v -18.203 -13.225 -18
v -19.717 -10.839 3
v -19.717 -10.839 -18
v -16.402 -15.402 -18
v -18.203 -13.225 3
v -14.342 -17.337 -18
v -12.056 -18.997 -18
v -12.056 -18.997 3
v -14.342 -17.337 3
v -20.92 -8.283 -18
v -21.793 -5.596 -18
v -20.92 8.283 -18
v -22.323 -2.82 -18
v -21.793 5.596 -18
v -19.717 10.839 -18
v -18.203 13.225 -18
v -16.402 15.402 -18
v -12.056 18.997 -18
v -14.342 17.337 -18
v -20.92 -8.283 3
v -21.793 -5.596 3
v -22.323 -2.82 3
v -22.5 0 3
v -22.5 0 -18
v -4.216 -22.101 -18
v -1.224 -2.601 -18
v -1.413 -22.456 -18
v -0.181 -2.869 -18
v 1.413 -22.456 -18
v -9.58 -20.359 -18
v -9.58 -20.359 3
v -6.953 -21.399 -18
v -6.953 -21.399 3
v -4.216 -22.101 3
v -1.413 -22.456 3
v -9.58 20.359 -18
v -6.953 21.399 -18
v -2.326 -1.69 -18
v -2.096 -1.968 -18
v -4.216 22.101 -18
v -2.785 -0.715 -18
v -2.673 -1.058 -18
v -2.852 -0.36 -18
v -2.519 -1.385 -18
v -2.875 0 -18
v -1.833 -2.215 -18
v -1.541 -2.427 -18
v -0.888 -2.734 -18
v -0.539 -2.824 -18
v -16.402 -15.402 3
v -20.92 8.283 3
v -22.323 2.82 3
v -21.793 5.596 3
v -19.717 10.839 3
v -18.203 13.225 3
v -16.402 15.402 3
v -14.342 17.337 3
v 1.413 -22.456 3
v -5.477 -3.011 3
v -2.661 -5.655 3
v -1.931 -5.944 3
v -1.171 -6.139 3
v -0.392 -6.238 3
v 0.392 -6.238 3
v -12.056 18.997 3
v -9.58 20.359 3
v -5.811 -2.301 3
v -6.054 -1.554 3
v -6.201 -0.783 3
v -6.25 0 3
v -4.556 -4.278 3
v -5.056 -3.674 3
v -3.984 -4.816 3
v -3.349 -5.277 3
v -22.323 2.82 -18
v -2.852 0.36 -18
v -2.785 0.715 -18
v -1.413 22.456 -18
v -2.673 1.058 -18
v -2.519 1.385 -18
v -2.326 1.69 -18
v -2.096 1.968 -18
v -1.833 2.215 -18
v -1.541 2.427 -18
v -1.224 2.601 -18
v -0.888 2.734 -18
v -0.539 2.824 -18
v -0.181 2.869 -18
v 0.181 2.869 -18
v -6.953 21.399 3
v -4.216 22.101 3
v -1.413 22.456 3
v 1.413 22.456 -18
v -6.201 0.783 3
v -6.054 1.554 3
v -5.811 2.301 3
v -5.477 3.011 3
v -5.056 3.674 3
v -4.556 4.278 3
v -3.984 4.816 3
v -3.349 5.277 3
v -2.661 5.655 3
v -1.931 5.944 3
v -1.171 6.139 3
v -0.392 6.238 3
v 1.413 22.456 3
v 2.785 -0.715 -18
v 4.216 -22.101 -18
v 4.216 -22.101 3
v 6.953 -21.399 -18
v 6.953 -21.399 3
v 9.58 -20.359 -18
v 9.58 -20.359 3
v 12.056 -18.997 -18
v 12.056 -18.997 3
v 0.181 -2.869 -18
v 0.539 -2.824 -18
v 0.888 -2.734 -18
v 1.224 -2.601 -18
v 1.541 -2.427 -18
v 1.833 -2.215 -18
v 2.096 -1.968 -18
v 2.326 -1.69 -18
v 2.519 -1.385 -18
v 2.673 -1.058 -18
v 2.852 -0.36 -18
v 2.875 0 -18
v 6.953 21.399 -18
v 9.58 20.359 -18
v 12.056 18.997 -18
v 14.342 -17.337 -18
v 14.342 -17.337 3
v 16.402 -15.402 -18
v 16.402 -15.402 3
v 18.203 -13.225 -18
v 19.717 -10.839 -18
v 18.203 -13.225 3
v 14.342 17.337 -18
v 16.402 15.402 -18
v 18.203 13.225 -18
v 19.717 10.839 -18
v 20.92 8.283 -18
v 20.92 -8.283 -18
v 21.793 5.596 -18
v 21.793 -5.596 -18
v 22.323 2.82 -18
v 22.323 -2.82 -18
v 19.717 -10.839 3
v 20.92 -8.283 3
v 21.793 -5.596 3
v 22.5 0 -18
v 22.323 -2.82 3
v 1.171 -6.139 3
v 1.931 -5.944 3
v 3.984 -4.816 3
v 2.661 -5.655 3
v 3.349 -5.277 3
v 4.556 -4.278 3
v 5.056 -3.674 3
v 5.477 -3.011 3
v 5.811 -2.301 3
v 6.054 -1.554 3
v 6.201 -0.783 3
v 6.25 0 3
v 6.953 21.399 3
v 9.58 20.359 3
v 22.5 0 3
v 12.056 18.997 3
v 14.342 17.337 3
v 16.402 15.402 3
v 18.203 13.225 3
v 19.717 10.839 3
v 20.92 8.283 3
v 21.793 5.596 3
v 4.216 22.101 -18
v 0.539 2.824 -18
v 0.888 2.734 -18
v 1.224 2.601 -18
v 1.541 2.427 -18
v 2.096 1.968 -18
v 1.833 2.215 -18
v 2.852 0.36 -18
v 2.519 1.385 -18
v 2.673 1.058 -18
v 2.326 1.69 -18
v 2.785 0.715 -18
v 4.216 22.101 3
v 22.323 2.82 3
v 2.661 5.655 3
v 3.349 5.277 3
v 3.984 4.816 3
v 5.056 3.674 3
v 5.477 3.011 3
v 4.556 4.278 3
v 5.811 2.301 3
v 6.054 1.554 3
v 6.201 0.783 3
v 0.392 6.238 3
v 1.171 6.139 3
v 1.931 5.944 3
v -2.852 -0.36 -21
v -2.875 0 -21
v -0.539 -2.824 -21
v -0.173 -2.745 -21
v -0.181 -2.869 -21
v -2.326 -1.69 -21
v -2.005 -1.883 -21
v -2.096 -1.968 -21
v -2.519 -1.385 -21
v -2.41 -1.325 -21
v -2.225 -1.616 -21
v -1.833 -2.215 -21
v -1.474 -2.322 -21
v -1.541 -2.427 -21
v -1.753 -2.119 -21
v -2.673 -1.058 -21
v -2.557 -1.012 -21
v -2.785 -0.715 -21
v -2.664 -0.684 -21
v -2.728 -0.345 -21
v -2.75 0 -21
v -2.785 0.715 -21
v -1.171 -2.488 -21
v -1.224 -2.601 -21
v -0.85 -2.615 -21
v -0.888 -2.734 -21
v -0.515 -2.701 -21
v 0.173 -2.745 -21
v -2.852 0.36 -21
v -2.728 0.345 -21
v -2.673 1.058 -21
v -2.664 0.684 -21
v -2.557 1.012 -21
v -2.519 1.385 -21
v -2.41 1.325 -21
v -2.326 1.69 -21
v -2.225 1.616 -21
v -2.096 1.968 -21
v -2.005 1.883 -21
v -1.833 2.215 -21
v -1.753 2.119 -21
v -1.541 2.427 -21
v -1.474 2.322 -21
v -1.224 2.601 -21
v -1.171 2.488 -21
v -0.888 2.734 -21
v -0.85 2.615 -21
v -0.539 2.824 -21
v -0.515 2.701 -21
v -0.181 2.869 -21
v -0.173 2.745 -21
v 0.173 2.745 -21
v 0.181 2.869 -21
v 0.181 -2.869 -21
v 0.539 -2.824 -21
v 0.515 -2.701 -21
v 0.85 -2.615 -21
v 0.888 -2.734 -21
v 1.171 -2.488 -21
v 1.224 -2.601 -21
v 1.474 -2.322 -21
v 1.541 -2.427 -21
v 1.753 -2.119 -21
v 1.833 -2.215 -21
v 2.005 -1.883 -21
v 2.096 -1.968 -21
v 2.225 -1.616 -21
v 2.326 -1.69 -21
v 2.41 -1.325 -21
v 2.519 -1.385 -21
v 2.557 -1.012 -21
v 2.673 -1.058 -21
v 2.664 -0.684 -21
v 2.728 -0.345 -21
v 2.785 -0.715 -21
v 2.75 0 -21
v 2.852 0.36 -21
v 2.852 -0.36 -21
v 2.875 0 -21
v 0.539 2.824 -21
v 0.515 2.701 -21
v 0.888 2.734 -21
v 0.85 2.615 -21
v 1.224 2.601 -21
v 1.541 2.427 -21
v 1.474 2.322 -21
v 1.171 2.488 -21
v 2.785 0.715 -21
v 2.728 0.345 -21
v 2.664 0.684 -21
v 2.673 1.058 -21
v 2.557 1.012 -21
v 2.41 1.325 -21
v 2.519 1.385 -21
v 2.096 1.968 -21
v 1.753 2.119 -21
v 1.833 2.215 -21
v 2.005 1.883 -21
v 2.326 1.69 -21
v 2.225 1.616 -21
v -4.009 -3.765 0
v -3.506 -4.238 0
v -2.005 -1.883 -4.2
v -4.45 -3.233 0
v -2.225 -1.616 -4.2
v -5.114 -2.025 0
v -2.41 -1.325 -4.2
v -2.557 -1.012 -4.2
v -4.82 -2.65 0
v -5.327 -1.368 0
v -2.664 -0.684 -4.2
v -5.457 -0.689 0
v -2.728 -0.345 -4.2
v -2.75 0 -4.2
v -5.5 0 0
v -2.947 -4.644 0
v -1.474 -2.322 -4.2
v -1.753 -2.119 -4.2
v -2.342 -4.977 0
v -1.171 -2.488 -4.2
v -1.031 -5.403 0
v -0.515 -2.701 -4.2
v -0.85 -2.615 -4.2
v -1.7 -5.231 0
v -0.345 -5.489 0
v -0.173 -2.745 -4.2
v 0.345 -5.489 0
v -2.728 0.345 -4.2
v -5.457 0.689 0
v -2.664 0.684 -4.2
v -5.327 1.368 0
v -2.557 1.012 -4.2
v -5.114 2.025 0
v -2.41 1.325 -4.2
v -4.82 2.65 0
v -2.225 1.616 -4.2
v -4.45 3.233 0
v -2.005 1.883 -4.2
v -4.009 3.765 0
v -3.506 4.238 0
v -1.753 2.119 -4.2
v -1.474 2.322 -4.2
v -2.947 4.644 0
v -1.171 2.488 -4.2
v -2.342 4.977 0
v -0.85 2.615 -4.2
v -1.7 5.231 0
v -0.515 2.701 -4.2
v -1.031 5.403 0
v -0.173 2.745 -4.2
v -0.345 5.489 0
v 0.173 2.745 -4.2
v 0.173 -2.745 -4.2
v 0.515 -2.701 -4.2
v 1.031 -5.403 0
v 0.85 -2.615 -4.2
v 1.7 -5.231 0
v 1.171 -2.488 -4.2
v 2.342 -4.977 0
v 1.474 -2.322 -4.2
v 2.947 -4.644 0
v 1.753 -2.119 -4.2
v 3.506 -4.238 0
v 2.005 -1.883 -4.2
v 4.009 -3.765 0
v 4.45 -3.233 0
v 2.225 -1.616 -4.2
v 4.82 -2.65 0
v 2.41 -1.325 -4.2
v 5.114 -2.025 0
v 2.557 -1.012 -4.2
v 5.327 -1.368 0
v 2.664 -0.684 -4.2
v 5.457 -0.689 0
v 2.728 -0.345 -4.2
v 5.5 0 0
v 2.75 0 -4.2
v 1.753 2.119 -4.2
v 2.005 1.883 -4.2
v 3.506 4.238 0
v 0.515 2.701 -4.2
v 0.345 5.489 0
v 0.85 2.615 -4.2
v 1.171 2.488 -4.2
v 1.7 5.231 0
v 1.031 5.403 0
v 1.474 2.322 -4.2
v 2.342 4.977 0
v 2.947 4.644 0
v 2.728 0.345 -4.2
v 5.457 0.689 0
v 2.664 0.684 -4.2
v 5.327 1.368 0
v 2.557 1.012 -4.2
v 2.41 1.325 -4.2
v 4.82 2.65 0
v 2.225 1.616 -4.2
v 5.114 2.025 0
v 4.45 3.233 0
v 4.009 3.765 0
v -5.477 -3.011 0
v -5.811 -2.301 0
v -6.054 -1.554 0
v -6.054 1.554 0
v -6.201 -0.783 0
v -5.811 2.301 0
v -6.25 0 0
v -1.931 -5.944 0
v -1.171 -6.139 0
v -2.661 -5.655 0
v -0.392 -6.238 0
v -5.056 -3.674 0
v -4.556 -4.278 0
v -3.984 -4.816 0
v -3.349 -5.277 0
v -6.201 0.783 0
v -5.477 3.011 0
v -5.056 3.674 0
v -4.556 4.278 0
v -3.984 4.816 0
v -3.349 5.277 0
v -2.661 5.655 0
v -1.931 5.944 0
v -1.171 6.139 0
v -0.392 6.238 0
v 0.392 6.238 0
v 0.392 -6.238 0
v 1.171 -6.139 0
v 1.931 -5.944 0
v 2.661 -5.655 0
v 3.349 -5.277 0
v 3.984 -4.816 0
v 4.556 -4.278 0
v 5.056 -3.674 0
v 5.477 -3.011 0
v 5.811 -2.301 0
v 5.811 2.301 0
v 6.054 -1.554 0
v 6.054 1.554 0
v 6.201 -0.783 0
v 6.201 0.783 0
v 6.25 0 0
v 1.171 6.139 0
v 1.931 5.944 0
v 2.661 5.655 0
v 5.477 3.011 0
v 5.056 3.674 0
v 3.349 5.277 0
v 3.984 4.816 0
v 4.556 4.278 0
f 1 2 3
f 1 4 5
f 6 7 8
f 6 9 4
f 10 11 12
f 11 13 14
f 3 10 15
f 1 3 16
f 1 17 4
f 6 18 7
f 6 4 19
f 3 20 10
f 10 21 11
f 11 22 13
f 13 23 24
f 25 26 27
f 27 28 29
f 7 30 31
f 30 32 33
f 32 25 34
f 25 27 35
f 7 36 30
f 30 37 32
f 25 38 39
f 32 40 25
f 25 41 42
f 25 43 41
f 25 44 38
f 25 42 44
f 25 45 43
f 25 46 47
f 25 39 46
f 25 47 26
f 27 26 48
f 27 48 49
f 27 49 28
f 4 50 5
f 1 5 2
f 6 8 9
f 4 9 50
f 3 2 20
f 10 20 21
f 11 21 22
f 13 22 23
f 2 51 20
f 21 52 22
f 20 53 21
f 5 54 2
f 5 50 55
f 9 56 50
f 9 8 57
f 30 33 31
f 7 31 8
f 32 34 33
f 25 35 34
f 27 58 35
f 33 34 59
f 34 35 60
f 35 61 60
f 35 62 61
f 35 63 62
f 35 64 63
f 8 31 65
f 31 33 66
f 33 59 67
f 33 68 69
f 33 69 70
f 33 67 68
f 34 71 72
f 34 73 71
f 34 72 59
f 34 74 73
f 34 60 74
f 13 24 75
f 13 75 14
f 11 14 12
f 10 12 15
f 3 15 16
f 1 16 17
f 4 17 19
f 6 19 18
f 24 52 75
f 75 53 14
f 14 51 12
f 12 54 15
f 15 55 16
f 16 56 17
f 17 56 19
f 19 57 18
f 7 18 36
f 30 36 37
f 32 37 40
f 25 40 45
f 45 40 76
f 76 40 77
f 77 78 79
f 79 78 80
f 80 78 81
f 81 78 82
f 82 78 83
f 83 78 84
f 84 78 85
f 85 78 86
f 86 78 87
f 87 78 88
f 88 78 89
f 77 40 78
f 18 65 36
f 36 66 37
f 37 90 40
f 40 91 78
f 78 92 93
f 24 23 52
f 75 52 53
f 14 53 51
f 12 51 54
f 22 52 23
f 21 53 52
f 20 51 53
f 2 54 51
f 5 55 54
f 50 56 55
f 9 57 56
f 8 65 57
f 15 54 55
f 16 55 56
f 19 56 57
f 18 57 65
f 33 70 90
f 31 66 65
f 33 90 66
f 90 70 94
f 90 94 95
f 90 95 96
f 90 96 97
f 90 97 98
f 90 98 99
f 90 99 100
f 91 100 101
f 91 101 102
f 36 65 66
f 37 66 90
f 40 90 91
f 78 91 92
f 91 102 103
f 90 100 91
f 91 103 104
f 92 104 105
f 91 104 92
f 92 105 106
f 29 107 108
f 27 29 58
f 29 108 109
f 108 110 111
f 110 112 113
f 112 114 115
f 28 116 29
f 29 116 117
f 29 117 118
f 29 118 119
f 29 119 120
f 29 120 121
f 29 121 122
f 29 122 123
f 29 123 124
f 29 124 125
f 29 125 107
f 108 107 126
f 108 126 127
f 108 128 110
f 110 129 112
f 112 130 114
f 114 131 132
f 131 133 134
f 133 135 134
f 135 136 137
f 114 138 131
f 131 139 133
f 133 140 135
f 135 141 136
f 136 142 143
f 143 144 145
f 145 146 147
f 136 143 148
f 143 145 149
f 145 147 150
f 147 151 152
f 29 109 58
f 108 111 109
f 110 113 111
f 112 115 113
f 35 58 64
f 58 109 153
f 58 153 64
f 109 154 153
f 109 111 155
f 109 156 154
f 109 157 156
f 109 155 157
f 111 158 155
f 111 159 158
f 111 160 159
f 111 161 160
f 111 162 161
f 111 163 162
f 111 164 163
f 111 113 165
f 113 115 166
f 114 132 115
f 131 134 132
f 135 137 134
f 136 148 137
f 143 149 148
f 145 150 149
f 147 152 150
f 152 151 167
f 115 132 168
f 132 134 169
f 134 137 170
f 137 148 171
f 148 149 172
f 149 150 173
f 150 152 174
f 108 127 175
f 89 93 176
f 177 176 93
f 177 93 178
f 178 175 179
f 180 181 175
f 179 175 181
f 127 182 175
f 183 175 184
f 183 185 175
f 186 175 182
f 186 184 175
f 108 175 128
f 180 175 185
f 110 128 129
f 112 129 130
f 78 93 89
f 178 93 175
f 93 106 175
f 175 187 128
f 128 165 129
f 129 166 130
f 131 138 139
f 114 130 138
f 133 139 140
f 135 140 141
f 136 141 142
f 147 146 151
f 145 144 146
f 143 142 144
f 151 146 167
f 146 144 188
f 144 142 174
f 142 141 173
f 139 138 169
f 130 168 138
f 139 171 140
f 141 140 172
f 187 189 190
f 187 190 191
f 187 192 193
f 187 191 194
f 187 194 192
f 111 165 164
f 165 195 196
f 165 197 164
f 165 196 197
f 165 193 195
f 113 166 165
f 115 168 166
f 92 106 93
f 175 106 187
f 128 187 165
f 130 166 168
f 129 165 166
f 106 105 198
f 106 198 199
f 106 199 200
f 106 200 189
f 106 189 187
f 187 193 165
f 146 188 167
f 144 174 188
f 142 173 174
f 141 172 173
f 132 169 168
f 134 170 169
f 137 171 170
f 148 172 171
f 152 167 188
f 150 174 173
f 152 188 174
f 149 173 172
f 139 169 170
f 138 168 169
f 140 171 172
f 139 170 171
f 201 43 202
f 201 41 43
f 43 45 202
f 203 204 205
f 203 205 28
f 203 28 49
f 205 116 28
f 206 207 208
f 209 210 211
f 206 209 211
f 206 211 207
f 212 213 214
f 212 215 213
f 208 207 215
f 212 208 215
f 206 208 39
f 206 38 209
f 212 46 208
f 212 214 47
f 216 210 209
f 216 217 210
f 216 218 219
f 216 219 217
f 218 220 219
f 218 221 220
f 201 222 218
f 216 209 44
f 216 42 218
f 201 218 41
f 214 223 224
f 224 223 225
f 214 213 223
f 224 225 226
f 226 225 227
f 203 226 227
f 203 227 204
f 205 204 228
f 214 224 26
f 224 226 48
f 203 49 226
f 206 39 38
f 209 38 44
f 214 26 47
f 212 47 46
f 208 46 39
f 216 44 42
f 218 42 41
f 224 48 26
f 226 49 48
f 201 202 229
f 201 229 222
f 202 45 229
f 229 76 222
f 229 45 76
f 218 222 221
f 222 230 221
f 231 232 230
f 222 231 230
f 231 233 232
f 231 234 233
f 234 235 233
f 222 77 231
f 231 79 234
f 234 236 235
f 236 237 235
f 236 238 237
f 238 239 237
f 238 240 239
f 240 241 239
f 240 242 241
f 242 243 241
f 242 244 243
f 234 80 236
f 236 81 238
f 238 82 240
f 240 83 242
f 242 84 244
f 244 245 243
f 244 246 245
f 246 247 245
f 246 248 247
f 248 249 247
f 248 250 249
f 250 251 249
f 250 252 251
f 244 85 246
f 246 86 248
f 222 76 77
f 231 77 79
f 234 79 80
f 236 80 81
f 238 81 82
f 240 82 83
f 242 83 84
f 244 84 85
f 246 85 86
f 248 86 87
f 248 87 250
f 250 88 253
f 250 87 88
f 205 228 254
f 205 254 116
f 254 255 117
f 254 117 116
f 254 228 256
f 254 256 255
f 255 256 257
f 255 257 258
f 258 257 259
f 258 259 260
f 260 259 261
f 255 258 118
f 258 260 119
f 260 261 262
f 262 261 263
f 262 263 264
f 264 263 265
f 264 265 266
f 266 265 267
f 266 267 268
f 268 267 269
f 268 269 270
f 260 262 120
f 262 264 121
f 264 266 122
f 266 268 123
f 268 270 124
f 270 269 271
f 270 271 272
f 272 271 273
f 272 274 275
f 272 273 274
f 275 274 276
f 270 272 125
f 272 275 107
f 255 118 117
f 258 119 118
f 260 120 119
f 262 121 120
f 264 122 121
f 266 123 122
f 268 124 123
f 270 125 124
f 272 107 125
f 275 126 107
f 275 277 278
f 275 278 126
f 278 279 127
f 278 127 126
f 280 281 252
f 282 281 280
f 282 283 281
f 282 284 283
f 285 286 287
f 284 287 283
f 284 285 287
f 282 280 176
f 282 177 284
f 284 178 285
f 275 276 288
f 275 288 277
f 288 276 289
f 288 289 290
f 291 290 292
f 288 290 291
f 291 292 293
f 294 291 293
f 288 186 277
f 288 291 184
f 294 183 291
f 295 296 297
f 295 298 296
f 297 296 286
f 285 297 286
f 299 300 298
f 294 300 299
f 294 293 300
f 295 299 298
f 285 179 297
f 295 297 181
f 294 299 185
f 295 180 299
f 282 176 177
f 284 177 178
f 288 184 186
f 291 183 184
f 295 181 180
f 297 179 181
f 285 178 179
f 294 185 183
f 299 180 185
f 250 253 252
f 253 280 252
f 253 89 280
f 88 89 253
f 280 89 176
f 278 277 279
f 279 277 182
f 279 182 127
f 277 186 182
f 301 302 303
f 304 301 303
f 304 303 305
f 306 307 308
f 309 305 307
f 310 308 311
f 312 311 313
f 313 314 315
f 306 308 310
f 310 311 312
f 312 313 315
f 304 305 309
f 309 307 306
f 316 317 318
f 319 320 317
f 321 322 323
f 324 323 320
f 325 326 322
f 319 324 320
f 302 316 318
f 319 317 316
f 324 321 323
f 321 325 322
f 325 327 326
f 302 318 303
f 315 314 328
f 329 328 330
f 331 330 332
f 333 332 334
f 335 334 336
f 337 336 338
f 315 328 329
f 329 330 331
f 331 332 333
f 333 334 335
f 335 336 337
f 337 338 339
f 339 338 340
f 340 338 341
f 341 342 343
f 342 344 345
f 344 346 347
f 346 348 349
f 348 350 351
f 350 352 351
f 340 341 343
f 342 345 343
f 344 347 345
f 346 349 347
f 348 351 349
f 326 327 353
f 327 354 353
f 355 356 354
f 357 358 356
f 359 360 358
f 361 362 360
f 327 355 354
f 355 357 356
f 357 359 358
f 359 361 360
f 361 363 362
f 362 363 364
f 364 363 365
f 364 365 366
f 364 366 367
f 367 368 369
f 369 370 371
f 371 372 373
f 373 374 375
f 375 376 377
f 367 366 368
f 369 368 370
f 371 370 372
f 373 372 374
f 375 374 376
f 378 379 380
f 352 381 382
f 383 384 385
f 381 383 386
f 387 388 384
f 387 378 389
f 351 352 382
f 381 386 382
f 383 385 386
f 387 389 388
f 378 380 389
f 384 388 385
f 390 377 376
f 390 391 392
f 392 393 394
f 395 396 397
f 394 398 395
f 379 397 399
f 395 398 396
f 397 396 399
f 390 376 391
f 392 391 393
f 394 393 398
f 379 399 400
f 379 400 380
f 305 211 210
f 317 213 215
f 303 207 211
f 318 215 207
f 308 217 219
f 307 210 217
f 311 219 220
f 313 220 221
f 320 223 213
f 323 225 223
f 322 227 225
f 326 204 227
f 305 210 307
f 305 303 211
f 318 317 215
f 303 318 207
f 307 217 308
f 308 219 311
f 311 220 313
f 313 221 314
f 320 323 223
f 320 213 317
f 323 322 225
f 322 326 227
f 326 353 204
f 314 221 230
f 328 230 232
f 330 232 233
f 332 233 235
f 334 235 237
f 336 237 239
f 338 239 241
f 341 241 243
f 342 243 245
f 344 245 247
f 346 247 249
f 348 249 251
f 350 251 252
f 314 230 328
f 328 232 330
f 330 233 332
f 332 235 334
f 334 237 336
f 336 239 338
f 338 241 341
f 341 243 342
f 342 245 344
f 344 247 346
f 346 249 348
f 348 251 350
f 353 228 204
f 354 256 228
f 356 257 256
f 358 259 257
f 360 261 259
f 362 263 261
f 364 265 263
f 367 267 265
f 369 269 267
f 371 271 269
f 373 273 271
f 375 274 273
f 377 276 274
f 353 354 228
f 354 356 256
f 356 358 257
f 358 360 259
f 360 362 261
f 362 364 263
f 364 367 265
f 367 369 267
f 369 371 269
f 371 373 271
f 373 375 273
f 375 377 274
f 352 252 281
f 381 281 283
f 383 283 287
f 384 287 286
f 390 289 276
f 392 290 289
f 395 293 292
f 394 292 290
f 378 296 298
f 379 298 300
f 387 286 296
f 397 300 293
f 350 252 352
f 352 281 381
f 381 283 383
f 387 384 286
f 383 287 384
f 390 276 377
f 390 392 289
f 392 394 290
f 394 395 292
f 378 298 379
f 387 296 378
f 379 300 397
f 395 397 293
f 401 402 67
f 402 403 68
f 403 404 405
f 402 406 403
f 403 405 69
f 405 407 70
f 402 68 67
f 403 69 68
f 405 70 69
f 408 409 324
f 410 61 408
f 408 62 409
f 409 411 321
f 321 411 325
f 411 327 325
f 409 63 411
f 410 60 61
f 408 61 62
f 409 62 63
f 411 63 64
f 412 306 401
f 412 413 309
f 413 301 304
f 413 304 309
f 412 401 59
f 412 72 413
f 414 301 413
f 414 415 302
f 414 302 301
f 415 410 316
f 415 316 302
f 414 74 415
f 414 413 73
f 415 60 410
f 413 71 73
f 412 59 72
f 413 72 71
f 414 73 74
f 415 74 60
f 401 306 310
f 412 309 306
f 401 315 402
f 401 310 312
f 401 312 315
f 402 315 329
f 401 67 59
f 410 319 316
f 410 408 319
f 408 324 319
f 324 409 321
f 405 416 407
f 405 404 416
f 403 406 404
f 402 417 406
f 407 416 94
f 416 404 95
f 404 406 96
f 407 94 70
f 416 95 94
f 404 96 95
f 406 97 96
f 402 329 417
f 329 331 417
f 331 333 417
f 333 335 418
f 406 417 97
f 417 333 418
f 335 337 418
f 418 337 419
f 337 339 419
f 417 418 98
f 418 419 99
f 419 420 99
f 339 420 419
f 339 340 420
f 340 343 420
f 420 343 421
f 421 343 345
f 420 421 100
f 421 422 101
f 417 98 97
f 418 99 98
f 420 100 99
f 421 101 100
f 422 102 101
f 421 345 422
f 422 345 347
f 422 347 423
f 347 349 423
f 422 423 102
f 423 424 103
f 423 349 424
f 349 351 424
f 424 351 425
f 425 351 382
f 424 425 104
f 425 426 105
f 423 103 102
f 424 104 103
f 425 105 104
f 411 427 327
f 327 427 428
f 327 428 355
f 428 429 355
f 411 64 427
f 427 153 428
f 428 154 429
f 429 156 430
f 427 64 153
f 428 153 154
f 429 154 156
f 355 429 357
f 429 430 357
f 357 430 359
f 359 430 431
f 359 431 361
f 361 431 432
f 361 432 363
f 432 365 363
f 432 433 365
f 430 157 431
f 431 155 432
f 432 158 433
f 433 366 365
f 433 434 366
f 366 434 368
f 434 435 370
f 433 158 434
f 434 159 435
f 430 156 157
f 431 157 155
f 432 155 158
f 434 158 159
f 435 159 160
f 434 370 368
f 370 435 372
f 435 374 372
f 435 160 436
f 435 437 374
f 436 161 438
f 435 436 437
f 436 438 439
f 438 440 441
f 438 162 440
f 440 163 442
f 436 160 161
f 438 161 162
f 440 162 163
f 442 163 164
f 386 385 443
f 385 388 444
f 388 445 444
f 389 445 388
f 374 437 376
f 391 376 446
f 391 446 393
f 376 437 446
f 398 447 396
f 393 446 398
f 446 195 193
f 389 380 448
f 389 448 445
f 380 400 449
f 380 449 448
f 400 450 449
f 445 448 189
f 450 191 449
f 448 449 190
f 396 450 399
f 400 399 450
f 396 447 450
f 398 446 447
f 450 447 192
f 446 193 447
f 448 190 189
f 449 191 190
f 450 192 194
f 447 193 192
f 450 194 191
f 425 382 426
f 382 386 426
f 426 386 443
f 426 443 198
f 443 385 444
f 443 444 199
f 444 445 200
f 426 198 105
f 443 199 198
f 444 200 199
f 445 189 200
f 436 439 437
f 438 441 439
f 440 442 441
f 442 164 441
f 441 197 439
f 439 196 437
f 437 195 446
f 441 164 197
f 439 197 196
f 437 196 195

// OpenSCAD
$fn = 50;


difference() {
	union() {
		translate(v = [0, 0, -18.0000000000]) {
			cylinder(h = 21, r = 22.5000000000);
		}
		#translate(v = [0, 0, -21.0000000000]) {
			cylinder(h = 21, r = 2.8750000000);
		}
	}
	union() {
		translate(v = [0, 0, 0]) {
			rotate(a = [0, 0, 0]) {
				difference() {
					union() {
						translate(v = [0, 0, -21.0000000000]) {
							cylinder(h = 21, r = 2.2500000000);
						}
						translate(v = [0, 0, -4.2000000000]) {
							cylinder(h = 4.2000000000, r1 = 2.7500000000, r2 = 5.5000000000);
						}
						translate(v = [0, 0, -21.0000000000]) {
							cylinder(h = 21, r = 2.7500000000);
						}
						translate(v = [0, 0, -21.0000000000]) {
							cylinder(h = 21, r = 2.2500000000);
						}
					}
					union();
				}
			}
		}
		#cylinder(h = 3, r = 6.2500000000);
	}
}
